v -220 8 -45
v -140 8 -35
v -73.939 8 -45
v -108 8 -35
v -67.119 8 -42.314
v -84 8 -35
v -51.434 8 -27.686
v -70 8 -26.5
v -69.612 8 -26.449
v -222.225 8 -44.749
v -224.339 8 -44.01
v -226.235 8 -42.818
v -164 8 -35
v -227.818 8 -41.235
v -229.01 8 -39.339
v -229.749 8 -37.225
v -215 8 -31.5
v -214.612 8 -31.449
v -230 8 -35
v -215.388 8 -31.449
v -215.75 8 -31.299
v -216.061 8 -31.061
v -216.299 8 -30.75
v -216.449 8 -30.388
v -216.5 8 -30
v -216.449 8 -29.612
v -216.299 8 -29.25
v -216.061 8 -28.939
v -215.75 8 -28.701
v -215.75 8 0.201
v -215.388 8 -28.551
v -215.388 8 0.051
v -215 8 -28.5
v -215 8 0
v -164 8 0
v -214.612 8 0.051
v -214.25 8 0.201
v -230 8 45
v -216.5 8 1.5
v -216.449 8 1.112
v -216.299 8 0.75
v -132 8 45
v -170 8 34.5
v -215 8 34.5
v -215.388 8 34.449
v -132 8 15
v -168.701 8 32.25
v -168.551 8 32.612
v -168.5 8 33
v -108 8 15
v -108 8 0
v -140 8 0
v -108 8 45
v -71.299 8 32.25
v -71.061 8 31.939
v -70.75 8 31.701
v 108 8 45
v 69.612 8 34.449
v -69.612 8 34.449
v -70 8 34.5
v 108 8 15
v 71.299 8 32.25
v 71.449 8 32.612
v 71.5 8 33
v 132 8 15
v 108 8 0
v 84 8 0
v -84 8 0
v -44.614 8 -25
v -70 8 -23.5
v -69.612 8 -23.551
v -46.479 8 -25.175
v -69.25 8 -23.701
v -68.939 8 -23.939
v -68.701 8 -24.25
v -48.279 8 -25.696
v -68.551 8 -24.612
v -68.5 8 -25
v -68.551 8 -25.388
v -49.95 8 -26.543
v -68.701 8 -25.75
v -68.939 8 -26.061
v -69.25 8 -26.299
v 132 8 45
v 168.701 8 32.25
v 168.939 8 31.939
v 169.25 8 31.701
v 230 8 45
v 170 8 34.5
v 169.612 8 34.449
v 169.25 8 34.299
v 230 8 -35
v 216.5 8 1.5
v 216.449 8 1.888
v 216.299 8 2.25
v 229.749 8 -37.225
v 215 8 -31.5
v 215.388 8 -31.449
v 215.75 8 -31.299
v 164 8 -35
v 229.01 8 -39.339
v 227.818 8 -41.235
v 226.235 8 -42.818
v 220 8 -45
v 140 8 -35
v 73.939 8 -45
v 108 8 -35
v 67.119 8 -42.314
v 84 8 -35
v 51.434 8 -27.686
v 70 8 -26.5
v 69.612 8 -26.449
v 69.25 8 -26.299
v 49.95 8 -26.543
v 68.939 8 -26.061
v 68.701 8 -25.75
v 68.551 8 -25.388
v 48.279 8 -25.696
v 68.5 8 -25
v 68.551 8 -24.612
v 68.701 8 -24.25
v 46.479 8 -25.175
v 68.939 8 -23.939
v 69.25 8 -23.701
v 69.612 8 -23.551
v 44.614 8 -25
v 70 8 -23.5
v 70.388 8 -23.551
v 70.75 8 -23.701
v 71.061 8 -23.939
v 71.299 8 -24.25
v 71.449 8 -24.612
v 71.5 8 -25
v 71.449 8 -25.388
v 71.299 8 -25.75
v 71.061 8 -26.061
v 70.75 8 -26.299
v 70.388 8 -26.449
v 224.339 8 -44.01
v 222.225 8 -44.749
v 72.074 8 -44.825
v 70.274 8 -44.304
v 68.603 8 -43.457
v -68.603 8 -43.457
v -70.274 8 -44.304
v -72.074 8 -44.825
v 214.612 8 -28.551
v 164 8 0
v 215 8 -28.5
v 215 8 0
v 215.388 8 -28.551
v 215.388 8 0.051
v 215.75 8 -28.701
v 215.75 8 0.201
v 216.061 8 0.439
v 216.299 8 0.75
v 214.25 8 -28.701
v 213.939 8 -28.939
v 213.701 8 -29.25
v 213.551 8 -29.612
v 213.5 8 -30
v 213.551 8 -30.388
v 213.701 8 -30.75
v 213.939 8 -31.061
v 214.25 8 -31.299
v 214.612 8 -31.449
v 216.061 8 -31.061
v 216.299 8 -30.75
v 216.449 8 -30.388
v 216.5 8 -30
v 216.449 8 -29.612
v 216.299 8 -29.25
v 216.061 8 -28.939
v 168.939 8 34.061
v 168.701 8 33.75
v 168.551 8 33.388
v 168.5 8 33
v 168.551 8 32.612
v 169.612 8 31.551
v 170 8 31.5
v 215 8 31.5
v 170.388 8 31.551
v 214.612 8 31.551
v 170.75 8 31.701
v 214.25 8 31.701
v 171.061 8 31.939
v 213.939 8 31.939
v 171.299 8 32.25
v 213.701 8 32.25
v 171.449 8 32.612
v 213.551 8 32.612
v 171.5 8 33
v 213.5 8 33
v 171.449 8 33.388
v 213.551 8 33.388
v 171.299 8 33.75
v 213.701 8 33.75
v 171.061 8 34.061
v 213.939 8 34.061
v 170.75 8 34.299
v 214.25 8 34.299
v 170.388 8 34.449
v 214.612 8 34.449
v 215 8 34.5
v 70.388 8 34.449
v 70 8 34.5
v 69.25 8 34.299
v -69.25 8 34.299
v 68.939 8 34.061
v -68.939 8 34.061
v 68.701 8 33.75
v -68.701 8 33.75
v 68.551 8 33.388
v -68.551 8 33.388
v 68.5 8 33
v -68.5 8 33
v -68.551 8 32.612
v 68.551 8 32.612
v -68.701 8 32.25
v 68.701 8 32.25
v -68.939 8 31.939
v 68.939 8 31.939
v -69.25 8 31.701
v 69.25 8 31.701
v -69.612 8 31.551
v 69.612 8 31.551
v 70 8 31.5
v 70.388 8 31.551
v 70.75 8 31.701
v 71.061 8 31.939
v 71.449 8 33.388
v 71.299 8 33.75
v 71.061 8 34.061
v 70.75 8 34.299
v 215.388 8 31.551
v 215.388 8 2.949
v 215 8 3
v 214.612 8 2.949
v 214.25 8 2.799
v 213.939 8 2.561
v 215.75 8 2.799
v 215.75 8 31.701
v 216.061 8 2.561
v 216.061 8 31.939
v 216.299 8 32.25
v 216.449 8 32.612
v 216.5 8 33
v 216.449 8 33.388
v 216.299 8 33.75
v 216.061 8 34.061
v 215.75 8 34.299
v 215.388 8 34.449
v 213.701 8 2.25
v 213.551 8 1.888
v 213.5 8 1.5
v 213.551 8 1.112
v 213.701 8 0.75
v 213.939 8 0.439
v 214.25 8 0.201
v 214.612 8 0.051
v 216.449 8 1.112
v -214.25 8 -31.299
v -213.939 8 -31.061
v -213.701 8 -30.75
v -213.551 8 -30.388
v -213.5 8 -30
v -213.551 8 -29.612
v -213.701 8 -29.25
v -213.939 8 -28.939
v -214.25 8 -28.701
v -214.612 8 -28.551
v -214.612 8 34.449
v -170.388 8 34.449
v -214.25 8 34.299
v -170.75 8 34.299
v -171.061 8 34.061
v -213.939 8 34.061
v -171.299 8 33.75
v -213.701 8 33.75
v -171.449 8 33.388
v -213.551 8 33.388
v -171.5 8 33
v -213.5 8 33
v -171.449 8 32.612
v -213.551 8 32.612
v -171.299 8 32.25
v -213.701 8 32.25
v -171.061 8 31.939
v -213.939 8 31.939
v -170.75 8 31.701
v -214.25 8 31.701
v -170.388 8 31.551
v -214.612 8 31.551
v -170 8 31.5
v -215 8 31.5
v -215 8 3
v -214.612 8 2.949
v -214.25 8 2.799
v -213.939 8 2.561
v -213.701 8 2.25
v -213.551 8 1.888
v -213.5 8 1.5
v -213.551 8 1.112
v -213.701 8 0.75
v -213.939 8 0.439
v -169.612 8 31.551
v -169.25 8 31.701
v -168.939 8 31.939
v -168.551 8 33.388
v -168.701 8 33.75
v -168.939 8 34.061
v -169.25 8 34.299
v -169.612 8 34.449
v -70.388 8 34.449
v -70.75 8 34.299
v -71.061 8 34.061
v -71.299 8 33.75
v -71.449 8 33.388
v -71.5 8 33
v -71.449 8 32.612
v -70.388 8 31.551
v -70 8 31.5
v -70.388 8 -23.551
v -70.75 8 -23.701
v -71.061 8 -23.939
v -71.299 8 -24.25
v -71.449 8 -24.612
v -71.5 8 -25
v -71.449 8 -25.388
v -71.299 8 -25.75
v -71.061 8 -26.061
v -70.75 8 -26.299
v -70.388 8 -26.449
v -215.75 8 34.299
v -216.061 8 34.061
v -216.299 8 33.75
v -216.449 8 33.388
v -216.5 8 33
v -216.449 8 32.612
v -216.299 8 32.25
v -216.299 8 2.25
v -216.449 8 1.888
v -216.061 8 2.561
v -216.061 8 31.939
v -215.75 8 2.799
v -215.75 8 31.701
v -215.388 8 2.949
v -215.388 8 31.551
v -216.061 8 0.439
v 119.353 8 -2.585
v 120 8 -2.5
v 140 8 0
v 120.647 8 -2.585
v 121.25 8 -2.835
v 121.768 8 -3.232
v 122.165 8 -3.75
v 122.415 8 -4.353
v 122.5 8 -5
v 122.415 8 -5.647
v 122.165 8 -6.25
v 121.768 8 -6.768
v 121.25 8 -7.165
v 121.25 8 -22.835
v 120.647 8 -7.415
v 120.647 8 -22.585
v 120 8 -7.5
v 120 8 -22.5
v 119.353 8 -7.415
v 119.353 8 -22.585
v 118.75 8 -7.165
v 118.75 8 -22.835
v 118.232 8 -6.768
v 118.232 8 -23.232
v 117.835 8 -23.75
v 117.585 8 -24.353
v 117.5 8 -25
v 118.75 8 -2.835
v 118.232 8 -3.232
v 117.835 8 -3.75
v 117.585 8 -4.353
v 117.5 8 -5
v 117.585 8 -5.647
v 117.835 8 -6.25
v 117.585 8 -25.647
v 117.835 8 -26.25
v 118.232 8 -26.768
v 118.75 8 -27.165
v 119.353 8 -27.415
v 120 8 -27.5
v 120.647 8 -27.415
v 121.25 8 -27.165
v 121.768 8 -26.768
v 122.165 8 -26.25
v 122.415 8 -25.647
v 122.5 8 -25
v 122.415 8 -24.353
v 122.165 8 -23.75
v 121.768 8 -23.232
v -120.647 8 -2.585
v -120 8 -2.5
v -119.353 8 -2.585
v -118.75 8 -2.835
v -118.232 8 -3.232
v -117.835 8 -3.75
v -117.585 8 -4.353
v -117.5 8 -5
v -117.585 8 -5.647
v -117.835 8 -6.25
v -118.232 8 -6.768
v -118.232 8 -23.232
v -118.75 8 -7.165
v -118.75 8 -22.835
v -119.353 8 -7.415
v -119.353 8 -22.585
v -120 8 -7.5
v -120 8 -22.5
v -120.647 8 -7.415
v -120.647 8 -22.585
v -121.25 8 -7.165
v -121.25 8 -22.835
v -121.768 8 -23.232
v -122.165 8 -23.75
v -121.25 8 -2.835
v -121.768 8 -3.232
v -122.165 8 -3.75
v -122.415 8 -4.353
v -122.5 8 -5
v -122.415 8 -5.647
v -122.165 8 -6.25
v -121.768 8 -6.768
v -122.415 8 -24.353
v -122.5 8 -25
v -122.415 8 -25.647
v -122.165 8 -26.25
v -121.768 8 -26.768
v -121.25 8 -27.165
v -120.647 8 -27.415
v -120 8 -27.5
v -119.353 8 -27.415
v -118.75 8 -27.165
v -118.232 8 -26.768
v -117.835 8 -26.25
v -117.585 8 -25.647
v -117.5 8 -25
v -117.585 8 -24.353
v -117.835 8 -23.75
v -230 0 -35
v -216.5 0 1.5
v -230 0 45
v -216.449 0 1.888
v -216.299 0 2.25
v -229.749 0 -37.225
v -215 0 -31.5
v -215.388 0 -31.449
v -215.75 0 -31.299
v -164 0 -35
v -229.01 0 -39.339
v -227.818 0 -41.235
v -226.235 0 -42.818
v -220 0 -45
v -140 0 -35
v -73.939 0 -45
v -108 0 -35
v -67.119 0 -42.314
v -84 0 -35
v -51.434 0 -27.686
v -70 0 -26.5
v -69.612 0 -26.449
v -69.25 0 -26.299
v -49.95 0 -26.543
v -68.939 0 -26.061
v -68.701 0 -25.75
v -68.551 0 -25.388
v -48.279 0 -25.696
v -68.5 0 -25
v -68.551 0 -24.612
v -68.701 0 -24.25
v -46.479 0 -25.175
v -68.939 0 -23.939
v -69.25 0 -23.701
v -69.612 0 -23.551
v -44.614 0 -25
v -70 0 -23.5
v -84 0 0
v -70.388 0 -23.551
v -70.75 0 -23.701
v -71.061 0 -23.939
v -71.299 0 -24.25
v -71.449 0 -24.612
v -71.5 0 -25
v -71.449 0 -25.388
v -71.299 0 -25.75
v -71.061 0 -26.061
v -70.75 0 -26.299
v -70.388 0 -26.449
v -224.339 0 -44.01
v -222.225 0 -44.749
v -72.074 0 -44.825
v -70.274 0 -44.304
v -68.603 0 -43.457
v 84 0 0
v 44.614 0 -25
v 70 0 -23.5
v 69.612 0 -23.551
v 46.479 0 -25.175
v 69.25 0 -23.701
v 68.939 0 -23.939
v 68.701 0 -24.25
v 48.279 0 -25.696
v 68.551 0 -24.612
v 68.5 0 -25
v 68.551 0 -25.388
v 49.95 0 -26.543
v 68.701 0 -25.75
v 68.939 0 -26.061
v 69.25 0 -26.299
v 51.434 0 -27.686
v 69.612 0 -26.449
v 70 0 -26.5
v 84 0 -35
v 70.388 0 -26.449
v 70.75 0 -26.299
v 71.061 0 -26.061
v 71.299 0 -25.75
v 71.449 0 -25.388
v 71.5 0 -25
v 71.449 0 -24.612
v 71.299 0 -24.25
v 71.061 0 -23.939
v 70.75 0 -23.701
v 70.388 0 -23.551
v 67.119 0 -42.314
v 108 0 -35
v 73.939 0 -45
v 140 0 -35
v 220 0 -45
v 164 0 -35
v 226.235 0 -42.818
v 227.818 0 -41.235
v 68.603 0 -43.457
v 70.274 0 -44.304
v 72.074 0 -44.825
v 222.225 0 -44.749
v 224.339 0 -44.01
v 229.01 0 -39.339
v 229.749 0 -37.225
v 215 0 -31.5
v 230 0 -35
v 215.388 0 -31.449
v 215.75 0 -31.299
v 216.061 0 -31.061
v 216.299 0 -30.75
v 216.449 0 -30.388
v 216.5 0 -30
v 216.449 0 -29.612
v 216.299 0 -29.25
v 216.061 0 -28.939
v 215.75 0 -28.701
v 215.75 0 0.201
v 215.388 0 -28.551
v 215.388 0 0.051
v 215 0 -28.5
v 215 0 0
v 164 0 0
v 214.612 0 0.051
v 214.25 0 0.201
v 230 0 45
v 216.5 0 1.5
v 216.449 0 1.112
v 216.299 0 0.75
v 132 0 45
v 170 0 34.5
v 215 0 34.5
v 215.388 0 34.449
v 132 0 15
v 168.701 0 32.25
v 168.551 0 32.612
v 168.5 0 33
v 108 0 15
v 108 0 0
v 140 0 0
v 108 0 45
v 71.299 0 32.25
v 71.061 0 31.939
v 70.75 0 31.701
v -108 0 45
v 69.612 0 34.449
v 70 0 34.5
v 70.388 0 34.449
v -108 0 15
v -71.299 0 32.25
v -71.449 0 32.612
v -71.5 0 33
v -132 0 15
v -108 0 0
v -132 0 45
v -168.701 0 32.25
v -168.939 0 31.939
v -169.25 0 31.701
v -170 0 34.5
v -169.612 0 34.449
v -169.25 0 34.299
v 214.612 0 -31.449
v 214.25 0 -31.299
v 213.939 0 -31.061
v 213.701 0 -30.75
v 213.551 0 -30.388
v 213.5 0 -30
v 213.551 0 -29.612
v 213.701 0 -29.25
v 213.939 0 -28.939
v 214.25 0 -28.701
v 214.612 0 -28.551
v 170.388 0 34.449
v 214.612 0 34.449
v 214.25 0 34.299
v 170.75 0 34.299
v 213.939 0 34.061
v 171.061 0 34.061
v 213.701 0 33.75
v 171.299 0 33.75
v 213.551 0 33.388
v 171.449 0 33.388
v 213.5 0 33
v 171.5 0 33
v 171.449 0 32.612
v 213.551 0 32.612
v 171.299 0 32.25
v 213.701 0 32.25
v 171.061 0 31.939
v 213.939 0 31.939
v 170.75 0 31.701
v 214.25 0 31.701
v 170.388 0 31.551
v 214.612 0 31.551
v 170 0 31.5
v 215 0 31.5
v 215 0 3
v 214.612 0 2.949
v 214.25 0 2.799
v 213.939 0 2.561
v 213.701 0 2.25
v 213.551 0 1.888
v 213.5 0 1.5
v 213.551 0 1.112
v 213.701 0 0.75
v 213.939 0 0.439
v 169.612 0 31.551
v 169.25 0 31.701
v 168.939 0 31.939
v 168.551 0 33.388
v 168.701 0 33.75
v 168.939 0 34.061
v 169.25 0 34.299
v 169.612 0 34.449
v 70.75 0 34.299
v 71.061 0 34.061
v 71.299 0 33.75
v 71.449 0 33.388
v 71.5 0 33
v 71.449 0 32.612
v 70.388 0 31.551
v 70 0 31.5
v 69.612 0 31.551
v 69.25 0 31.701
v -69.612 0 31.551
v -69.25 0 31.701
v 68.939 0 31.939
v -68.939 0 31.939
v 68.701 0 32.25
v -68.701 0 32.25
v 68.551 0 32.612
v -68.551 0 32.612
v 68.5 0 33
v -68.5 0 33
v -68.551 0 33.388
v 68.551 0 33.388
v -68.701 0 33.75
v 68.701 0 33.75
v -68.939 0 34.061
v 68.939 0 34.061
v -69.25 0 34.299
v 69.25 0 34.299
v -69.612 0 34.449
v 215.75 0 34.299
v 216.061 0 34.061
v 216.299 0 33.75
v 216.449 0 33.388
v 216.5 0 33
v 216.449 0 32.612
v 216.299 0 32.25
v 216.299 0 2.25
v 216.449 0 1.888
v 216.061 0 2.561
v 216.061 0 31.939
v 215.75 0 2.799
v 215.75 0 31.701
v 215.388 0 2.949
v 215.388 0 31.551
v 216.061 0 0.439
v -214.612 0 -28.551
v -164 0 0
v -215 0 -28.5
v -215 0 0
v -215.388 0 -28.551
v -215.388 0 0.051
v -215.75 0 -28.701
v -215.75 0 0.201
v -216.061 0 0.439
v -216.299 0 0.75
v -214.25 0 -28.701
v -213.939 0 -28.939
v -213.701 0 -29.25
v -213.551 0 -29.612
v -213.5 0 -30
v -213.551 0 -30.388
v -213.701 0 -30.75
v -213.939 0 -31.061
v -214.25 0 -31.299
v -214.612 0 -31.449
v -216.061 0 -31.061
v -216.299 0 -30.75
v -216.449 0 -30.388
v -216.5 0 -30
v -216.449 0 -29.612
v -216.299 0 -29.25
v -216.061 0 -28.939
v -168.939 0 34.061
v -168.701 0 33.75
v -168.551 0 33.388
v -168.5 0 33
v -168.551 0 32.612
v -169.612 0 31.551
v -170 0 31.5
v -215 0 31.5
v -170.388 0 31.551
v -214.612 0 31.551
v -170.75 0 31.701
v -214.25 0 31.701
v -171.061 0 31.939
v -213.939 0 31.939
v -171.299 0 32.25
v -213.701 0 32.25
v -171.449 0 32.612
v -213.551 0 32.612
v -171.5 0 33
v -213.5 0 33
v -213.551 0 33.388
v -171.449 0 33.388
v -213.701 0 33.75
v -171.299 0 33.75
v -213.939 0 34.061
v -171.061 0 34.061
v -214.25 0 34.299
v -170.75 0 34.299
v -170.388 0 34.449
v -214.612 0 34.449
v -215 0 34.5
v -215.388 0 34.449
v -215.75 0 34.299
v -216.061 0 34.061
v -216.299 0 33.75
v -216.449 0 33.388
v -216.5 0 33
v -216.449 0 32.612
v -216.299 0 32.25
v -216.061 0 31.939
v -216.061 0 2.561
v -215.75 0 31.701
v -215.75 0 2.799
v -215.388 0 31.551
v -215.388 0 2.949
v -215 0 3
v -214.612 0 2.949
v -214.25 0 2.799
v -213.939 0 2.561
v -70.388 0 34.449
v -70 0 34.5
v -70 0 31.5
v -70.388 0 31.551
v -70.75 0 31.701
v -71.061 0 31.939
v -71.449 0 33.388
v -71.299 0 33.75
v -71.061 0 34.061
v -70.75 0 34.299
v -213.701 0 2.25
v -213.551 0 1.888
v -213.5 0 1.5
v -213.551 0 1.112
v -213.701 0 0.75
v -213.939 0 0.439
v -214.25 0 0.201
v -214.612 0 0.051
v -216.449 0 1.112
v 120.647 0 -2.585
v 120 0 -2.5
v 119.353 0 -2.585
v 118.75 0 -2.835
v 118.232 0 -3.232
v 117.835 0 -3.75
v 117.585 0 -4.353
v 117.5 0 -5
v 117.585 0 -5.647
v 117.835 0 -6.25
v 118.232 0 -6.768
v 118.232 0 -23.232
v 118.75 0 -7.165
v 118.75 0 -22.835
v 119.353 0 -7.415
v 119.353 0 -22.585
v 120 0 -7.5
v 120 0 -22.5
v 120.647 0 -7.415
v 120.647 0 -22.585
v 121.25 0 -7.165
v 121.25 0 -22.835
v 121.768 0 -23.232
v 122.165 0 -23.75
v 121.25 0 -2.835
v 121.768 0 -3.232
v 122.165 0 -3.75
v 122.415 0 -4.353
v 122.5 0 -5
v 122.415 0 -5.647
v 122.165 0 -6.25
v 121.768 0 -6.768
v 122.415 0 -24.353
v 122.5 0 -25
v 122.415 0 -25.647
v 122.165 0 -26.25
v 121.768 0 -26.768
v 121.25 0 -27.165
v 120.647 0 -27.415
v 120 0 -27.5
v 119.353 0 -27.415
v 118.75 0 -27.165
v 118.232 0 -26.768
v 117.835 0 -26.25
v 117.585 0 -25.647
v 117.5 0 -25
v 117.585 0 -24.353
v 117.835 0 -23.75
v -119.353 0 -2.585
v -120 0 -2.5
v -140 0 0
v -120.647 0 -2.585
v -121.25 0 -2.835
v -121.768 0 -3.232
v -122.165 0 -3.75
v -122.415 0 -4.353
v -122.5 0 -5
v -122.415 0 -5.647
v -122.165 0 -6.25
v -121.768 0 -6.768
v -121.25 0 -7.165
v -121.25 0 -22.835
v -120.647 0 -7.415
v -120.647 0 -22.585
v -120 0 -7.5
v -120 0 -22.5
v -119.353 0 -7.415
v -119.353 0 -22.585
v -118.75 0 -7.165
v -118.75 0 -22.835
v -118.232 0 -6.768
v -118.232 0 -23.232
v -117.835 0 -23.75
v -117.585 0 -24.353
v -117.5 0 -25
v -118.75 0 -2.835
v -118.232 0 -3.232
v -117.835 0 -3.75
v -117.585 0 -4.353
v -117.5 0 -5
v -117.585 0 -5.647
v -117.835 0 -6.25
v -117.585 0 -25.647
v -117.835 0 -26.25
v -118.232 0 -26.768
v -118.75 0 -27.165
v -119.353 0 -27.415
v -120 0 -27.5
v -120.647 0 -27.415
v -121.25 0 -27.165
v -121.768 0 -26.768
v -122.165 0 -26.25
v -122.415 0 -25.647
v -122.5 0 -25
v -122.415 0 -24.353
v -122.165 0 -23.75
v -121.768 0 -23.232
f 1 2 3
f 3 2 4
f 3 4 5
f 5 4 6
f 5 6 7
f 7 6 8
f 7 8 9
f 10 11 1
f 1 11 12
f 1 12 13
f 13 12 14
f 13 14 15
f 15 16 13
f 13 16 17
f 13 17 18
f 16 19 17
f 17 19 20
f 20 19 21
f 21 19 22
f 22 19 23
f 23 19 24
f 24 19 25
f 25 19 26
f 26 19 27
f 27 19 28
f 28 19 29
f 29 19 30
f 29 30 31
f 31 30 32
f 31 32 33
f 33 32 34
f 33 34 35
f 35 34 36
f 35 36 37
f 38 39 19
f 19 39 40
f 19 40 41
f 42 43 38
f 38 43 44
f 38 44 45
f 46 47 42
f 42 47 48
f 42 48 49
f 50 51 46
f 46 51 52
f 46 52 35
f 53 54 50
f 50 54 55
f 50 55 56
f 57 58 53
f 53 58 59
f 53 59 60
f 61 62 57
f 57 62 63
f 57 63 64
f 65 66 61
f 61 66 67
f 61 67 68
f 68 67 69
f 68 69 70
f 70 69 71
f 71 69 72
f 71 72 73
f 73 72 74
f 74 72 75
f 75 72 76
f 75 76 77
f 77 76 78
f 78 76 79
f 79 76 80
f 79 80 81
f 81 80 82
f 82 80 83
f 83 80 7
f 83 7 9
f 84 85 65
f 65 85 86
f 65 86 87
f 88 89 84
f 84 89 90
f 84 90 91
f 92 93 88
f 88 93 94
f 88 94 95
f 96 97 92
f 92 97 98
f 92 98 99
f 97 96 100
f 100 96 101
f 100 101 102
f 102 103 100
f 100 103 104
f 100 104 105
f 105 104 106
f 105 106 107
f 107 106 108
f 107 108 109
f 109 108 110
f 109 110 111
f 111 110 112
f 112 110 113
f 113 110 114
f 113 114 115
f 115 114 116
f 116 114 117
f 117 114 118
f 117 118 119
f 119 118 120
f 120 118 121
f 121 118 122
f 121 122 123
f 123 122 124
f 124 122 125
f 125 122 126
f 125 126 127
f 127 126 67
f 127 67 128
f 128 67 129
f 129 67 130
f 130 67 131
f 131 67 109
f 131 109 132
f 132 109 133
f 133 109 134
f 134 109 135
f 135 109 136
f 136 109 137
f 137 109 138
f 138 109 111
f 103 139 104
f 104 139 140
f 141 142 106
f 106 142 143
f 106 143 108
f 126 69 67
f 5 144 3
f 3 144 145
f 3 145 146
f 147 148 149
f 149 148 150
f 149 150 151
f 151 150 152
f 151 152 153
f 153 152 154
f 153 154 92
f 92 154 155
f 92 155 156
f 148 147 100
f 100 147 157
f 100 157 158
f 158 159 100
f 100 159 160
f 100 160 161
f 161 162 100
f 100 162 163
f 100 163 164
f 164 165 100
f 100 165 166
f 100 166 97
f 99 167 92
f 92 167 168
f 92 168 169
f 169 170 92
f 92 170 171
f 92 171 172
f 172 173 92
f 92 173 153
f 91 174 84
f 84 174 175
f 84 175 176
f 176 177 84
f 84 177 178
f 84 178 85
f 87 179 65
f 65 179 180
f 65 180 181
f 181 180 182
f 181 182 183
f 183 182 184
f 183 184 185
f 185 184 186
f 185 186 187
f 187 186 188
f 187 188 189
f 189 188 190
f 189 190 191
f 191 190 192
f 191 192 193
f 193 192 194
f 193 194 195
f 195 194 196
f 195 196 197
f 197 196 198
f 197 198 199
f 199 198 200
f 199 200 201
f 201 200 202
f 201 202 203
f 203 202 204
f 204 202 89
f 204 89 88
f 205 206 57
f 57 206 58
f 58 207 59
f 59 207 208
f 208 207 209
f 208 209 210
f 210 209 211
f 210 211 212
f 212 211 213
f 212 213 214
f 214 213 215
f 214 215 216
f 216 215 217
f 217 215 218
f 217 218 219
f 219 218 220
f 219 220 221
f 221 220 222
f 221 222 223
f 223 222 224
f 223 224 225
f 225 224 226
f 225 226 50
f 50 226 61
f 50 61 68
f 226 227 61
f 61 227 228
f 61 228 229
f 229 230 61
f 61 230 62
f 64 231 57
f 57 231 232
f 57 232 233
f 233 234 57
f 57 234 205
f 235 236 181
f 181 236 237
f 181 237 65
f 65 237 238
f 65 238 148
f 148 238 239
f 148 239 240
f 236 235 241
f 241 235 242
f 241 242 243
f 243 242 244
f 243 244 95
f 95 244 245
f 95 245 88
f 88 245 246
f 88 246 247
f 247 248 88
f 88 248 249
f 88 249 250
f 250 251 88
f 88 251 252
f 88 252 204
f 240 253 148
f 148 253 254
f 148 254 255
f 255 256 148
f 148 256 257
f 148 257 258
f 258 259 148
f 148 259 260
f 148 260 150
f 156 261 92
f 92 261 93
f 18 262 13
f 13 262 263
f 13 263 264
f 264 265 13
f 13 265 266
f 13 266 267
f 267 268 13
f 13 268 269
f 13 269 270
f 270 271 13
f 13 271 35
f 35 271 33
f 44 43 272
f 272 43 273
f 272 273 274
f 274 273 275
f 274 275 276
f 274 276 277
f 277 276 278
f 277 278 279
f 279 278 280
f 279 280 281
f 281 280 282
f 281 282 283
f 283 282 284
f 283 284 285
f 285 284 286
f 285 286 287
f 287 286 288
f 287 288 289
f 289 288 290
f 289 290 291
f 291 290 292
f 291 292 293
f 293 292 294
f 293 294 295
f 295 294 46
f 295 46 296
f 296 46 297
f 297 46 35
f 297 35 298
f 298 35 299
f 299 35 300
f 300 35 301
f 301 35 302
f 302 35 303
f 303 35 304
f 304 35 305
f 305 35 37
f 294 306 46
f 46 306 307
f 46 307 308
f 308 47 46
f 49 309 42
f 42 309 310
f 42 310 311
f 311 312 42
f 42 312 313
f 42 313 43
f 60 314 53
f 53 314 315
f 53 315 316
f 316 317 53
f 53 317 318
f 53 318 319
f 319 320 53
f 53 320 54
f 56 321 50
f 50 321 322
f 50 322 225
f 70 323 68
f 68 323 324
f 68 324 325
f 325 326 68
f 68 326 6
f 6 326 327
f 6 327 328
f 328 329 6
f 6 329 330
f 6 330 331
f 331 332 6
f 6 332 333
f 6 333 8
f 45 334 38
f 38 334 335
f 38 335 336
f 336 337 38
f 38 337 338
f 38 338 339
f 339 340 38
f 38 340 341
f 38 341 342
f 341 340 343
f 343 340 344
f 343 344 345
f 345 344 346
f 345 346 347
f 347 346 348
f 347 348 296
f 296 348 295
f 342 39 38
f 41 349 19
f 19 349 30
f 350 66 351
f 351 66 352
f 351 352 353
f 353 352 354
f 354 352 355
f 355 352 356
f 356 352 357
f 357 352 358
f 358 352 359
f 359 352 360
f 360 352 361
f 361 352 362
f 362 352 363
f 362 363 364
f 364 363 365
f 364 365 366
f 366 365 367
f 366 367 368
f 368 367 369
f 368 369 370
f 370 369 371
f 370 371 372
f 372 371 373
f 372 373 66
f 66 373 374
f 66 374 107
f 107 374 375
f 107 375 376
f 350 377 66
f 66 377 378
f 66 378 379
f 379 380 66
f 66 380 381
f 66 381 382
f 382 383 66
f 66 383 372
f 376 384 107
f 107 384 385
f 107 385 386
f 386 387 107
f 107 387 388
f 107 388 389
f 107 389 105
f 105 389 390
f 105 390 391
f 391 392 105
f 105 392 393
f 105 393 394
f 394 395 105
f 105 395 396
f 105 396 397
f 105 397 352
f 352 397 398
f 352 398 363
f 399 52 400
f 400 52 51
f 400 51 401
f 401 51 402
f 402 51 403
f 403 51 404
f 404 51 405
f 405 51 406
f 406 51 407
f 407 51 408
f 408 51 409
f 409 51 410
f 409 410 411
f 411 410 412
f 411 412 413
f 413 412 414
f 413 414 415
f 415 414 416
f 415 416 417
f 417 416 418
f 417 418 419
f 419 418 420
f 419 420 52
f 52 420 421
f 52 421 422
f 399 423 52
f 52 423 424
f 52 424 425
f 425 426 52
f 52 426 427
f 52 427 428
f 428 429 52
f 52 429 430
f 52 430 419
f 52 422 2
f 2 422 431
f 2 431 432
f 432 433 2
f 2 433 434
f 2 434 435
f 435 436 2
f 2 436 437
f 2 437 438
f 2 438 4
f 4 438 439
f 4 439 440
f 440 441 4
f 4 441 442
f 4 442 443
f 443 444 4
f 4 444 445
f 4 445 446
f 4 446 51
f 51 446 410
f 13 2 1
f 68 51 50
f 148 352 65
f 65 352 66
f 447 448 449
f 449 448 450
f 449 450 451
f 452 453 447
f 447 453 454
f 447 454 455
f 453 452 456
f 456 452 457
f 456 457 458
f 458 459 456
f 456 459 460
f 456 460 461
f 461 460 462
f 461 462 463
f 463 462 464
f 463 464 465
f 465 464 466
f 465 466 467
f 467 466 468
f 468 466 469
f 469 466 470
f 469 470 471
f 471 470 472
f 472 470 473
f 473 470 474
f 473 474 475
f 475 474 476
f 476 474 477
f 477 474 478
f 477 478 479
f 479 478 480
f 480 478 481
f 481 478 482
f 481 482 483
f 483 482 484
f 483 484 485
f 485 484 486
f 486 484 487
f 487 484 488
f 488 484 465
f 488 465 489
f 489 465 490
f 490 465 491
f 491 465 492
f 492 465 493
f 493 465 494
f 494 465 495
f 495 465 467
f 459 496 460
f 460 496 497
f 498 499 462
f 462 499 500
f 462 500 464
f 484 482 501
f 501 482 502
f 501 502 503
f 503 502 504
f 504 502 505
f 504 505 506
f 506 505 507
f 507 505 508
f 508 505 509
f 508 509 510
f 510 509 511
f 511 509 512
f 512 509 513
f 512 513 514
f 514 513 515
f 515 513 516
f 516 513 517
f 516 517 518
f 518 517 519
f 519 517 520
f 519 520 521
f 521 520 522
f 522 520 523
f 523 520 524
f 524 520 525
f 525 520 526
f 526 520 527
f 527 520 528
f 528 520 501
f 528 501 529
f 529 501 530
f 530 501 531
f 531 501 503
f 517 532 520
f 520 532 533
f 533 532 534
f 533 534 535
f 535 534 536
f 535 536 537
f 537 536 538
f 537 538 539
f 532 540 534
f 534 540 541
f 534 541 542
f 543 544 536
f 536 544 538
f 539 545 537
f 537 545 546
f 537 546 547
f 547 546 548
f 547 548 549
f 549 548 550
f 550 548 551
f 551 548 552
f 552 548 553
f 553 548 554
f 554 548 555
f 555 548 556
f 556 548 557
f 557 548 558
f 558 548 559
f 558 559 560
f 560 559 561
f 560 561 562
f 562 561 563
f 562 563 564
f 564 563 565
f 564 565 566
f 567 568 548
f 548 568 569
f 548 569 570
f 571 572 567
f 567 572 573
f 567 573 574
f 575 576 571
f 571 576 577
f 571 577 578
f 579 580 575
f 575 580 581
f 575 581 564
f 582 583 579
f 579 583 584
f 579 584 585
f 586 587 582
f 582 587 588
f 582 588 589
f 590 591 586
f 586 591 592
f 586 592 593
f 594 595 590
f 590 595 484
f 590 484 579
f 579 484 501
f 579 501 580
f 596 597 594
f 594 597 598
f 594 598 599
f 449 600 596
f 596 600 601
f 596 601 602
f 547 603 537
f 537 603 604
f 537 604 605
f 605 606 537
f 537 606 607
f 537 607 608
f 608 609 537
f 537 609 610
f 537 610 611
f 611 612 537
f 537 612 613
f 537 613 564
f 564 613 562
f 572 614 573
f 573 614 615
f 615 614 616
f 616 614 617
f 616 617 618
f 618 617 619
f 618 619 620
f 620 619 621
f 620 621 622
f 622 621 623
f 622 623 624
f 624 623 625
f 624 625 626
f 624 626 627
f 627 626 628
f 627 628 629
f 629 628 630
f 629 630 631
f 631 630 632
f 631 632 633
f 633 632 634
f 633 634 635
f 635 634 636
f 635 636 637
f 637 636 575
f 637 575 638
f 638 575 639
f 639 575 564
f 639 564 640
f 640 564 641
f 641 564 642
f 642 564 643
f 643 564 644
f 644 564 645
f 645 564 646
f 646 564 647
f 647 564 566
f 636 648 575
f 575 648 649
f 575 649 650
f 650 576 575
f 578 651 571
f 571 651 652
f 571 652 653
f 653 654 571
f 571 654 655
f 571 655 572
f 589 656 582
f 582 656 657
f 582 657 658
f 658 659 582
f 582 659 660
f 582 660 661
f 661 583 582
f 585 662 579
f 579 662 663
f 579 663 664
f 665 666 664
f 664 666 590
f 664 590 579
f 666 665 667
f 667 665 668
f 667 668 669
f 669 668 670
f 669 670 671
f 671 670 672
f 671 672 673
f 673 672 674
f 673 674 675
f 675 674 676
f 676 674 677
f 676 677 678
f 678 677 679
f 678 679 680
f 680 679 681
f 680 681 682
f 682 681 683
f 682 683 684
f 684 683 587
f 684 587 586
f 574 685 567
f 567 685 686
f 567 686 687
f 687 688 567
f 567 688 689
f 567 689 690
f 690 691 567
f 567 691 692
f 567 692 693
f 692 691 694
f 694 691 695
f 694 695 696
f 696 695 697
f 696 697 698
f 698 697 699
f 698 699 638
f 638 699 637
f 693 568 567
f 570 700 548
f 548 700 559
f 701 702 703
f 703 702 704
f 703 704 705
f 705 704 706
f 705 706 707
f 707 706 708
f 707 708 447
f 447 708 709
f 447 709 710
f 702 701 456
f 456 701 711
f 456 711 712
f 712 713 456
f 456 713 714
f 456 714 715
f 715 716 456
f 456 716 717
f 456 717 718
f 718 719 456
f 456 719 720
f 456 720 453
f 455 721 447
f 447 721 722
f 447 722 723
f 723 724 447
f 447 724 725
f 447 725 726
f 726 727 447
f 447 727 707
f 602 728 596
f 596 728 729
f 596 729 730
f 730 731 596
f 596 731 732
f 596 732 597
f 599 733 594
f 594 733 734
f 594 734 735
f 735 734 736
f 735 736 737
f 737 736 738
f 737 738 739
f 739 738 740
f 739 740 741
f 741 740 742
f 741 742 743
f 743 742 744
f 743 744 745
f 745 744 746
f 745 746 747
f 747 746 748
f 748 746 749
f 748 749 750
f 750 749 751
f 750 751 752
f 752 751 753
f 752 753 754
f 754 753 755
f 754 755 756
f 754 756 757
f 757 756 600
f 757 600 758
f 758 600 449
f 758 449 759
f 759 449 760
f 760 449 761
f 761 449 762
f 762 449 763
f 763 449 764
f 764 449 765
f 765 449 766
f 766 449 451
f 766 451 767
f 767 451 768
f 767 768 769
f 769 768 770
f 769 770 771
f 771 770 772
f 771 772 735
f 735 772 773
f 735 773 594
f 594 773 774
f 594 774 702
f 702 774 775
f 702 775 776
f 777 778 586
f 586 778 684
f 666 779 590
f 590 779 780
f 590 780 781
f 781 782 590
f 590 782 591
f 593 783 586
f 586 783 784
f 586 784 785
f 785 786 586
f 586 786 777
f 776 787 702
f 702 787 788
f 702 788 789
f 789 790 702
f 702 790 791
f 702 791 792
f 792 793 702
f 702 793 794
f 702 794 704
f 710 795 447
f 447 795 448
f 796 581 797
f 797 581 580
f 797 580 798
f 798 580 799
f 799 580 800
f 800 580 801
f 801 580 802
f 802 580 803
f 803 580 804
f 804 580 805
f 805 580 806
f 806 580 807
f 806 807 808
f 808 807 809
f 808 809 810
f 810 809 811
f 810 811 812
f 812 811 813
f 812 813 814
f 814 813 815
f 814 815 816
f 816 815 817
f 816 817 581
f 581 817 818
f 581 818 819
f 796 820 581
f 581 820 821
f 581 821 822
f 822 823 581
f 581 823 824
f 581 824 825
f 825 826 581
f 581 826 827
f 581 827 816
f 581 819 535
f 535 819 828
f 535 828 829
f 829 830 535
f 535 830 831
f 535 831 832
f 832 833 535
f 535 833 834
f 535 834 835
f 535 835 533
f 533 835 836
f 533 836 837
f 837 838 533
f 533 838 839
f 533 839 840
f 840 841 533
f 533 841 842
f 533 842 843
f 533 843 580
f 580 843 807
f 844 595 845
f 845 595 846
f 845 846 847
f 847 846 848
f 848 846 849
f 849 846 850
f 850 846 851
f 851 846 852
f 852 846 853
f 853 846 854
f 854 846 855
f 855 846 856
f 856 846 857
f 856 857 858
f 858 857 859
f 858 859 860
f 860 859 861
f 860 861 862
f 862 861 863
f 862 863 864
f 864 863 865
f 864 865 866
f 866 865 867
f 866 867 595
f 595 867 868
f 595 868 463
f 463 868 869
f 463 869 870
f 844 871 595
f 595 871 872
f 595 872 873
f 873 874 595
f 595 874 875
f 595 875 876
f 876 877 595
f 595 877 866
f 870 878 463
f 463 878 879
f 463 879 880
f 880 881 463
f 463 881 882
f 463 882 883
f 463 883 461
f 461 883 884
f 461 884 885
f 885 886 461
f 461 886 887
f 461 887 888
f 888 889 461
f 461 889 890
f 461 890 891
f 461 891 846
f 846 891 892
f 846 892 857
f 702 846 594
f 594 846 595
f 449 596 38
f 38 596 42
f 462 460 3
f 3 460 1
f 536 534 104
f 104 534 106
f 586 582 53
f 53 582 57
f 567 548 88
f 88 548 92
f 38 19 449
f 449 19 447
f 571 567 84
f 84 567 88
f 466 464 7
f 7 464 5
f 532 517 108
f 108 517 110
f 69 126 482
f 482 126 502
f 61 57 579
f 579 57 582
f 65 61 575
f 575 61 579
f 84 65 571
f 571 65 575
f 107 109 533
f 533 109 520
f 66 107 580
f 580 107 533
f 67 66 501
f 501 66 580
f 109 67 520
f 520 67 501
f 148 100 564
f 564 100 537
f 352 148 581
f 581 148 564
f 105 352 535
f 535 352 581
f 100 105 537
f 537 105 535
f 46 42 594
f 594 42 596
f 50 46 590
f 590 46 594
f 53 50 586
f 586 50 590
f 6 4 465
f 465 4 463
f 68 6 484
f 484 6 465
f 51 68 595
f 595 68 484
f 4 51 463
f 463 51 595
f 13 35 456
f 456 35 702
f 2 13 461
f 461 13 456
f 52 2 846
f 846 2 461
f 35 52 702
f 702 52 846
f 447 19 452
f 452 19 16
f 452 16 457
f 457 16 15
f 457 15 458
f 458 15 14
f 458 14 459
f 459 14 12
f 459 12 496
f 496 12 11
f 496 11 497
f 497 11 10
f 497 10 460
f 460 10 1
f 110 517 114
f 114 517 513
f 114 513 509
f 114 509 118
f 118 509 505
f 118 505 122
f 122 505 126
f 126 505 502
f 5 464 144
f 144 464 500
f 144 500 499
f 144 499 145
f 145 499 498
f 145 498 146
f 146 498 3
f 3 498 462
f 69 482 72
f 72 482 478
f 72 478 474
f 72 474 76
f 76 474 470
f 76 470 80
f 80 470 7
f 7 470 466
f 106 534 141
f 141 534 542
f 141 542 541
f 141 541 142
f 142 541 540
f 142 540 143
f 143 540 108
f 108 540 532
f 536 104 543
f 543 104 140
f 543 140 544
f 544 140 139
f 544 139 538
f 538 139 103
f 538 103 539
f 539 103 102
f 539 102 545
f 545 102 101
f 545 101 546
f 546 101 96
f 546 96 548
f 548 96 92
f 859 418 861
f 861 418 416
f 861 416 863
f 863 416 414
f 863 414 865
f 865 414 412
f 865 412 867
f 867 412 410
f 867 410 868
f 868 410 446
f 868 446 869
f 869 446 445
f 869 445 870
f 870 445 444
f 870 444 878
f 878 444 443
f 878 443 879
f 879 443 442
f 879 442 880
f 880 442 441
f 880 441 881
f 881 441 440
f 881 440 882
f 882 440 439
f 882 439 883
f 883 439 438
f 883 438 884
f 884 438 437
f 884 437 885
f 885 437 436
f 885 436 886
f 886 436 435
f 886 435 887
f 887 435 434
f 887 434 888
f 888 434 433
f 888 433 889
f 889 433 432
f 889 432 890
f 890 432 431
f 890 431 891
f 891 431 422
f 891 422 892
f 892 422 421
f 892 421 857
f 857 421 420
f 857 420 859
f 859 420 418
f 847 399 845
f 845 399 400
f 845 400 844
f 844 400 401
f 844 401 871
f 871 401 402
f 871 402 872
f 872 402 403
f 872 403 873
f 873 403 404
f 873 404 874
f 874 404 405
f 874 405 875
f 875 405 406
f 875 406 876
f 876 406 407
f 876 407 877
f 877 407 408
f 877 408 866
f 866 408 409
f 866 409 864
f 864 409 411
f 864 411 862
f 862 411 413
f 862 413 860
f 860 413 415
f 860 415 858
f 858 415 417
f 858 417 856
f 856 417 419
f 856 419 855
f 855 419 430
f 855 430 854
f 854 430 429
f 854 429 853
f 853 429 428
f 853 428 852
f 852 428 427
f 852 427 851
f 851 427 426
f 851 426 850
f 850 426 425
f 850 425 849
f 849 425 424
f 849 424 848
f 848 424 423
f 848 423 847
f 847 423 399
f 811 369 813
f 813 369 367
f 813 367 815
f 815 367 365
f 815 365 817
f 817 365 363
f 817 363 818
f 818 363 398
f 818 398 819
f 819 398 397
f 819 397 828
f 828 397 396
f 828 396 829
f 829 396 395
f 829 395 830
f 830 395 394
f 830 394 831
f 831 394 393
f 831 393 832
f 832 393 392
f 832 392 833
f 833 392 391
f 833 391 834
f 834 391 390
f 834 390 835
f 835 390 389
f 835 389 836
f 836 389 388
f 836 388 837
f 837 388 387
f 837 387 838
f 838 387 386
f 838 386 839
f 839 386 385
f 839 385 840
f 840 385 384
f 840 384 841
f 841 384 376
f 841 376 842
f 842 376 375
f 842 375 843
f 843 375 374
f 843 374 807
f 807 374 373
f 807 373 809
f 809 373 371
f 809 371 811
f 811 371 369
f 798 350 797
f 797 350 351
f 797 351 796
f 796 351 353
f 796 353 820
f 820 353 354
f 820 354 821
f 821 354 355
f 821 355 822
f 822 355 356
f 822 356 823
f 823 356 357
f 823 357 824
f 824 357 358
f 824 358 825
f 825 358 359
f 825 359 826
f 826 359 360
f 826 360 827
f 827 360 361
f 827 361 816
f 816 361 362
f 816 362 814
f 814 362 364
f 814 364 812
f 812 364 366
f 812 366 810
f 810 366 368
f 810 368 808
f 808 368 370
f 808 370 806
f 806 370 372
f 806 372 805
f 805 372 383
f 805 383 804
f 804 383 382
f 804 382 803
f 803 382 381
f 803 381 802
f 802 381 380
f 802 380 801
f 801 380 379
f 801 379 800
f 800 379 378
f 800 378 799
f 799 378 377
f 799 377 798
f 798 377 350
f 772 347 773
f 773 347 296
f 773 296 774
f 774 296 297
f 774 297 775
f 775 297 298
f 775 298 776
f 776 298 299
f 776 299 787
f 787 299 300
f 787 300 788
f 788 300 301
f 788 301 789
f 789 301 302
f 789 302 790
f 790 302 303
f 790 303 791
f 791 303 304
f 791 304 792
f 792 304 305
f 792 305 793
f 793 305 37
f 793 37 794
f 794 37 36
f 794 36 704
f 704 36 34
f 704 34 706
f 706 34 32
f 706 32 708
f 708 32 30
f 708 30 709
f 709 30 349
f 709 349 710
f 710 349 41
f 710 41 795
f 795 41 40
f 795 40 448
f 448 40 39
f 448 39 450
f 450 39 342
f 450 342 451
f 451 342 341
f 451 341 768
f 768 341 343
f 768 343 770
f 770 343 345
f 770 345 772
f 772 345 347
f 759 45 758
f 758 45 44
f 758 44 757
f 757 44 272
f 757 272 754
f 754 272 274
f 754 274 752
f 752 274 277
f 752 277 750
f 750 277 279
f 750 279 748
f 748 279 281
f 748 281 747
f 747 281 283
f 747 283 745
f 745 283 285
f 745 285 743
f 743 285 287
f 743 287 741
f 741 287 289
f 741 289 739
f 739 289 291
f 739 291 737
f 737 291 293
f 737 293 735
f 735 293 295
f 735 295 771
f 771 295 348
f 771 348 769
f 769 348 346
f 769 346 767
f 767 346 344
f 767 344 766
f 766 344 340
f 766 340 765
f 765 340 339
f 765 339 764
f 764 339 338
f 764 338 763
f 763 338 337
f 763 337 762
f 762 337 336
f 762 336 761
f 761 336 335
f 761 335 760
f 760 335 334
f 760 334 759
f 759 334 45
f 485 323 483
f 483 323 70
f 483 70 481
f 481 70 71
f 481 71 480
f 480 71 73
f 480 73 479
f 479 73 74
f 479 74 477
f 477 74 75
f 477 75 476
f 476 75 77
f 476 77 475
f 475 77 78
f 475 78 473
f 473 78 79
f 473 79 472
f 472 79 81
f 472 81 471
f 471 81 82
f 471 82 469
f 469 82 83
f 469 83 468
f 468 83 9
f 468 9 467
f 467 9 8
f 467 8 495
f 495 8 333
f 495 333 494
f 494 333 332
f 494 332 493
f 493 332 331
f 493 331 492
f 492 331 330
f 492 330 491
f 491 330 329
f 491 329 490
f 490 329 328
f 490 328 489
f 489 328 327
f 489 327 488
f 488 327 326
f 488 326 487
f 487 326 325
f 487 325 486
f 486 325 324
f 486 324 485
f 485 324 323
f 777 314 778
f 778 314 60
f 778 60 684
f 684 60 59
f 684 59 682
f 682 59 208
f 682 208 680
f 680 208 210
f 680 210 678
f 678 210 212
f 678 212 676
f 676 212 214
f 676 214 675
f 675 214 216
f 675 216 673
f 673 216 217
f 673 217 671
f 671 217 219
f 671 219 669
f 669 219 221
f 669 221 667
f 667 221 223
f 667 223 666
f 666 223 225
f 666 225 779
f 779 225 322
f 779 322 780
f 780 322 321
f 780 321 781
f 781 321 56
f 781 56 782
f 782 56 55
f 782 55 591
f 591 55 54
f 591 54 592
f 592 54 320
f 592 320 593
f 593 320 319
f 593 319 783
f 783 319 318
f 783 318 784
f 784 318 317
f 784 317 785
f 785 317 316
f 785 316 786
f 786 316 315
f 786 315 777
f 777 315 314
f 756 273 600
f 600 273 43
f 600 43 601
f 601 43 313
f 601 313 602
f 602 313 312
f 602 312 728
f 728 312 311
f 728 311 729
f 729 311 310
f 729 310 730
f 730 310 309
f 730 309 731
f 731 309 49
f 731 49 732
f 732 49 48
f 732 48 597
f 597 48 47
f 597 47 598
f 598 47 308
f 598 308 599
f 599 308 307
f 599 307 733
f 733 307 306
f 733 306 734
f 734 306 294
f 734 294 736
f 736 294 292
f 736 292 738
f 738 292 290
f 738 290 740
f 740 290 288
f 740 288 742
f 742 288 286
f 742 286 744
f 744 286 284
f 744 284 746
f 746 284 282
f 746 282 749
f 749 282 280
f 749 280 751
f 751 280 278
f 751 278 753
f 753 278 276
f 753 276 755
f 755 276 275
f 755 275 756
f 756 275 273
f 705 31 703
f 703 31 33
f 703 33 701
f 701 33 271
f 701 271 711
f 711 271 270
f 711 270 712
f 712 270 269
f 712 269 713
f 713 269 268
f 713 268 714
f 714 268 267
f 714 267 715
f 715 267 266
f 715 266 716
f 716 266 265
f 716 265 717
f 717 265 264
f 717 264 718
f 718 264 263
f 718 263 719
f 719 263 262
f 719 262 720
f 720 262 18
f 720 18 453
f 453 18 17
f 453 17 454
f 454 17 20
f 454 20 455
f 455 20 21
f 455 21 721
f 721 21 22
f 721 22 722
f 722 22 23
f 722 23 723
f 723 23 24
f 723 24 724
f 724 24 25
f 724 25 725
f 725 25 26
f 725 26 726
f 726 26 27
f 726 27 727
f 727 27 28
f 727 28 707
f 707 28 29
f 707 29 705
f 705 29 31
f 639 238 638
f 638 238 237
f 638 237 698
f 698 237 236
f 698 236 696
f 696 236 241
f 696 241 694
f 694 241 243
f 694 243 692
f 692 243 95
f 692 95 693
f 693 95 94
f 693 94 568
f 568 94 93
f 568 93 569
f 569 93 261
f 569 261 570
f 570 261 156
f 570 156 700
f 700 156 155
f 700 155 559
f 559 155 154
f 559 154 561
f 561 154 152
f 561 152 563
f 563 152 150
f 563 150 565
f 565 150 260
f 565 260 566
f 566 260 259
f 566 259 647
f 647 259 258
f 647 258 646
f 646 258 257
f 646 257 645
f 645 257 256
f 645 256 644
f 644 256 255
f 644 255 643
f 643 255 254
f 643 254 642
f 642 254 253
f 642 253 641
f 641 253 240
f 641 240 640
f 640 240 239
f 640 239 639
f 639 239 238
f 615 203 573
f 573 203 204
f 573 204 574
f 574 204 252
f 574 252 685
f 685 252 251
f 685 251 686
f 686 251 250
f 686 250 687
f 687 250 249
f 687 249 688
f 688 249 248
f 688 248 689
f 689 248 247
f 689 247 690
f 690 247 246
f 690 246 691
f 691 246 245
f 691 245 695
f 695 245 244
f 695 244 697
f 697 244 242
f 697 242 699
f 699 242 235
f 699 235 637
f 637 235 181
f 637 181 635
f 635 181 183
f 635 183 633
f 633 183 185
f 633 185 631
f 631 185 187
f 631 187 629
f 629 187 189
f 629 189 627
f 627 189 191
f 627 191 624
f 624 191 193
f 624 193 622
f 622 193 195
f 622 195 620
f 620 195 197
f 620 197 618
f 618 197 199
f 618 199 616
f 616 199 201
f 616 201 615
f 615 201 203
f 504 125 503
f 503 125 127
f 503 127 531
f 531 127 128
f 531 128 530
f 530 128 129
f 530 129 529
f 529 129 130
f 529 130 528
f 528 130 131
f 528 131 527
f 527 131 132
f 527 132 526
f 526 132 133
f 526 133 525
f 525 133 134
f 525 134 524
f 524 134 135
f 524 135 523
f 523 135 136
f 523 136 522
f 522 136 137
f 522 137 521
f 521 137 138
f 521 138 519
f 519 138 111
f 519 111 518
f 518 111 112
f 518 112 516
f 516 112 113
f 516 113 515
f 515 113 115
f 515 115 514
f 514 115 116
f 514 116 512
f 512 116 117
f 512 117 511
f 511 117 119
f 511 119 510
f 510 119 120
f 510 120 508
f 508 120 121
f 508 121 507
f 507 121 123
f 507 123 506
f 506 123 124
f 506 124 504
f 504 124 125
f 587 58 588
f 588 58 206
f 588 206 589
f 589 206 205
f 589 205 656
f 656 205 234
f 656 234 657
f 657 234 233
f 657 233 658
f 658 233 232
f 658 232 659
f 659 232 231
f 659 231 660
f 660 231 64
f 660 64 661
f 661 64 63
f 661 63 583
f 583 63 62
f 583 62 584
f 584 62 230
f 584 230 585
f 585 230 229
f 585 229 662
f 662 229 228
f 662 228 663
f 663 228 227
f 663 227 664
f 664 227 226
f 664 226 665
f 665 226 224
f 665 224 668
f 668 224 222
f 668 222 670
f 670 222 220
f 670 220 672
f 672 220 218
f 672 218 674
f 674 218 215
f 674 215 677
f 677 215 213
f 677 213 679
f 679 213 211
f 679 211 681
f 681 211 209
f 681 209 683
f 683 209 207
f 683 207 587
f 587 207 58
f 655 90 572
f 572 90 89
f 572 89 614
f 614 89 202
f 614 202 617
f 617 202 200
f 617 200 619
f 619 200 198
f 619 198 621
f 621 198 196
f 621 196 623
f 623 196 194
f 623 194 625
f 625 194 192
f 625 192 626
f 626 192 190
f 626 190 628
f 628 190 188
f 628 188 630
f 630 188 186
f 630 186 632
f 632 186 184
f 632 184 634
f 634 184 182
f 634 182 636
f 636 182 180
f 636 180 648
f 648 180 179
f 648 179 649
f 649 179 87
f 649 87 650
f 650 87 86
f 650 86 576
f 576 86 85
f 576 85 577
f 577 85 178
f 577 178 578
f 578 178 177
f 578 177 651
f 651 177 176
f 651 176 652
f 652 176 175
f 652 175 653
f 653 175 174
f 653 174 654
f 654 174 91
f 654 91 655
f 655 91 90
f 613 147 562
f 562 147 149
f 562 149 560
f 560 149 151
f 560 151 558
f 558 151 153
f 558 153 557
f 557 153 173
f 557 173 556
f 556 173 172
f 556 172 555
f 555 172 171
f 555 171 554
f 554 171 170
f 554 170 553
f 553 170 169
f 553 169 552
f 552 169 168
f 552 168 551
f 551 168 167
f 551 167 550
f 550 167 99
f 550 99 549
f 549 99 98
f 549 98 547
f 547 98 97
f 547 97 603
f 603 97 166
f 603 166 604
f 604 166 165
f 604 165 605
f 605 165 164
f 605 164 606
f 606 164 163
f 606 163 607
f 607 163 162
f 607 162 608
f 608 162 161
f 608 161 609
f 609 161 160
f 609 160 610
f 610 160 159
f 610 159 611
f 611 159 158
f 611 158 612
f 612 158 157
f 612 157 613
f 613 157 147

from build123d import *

# Parameters (mm, degrees)
SKETCH_1_W          = 460
SKETCH_1_H          = 90
EXTRUDE_1_DEPTH     = 8
SKETCH_3_W          = 24
SKETCH_3_H          = 30
CUT_EXTRUDE_2_DEPTH = 235.49733474
SKETCH_2_W          = 24
SKETCH_2_H          = 35
CUT_EXTRUDE_3_DEPTH = 235.49733474
FILLET_1_R          = 10
SKETCH_19_R         = 2.5
CUT_EXTRUDE_4_DEPTH = 235.49733474
SKETCH_20_R         = 1.5
CUT_EXTRUDE_5_DEPTH = 235.49733474


with BuildPart() as part:
    # 草图1 → 凸台-拉伸1 (new body)
    with BuildSketch(Plane(origin=(0, 0, 0), x_dir=(1, 0, 0), z_dir=(0, 1, 0))):
        Rectangle(SKETCH_1_W, SKETCH_1_H)
    extrude(amount=EXTRUDE_1_DEPTH)

    # 草图3 → 切除-拉伸2 (cut, through all)
    with BuildSketch(Plane(origin=(0, 8, 0), x_dir=(1, 0, 0), z_dir=(0, 1, 0))):
        with Locations((120, -30)):
            Rectangle(SKETCH_3_W, SKETCH_3_H)
        Polygon((-70, 45), (70, 45), (48.5526258, 25), (-48.5526258, 25), align=None)
    cut_extrude_2 = extrude(amount=-CUT_EXTRUDE_2_DEPTH, mode=Mode.SUBTRACT)

    # 草图2 → 切除-拉伸3 (cut, through all)
    with BuildSketch(Plane(origin=(0, 8, 0), x_dir=(1, 0, 0), z_dir=(0, 1, 0))):
        with Locations((152, 17.5)):
            Rectangle(SKETCH_2_W, SKETCH_2_H)
        with Locations((96, 17.5)):
            Rectangle(SKETCH_2_W, SKETCH_2_H)
    cut_extrude_3 = extrude(amount=-CUT_EXTRUDE_3_DEPTH, mode=Mode.SUBTRACT)

    # 镜向1: 切除-拉伸2, 切除-拉伸3 across plane
    add(cut_extrude_2.mirror(Plane(origin=(0, 0, 0), x_dir=(0, 0, 1), z_dir=(1, 0, 0))), mode=Mode.SUBTRACT)
    add(cut_extrude_3.mirror(Plane(origin=(0, 0, 0), x_dir=(0, 0, 1), z_dir=(1, 0, 0))), mode=Mode.SUBTRACT)

    # 圆角1
    fillet_1_edges = [part.edges().sort_by_distance(p)[0] for p in [
        (-48.5526258, 4, -25),
        (-70, 4, -45),
        (70, 4, -45),
        (48.5526258, 4, -25),
        (-230, 4, -45),
        (230, 4, -45),
    ]]
    fillet(fillet_1_edges, radius=FILLET_1_R)

    # 草图19 → 切除-拉伸4 (cut, through all)
    with BuildSketch(Plane(origin=(0, 8, 0), x_dir=(1, 0, 0), z_dir=(0, 1, 0))):
        with Locations(Location((-120, 5, 0), (0, 0, 270))):
            Circle(SKETCH_19_R)
        with Locations(Location((-120, 25, 0), (0, 0, 270))):
            Circle(SKETCH_19_R)
    cut_extrude_4 = extrude(amount=-CUT_EXTRUDE_4_DEPTH, mode=Mode.SUBTRACT)

    # 镜向2: 切除-拉伸4 across plane
    add(cut_extrude_4.mirror(Plane(origin=(0, 0, 0), x_dir=(0, 0, 1), z_dir=(1, 0, 0))), mode=Mode.SUBTRACT)

    # 草图20 → 切除-拉伸5 (cut, through all)
    with BuildSketch(Plane(origin=(0, 8, 0), x_dir=(1, 0, 0), z_dir=(0, 1, 0))):
        with Locations(Location((-215, 30, 0), (0, 0, 270))):
            Circle(SKETCH_20_R)
        with Locations(Location((-215, -1.5, 0), (0, 0, 270))):
            Circle(SKETCH_20_R)
        with Locations(Location((-215, -33, 0), (0, 0, 270))):
            Circle(SKETCH_20_R)
        with Locations(Location((-70, 25, 0), (0, 0, 270))):
            Circle(SKETCH_20_R)
        with Locations(Location((-70, -33, 0), (0, 0, 270))):
            Circle(SKETCH_20_R)
        with Locations(Location((-170, -33, 0), (0, 0, 270))):
            Circle(SKETCH_20_R)
    cut_extrude_5 = extrude(amount=-CUT_EXTRUDE_5_DEPTH, mode=Mode.SUBTRACT)

    # 镜向3: 切除-拉伸5 across plane
    add(cut_extrude_5.mirror(Plane(origin=(0, 0, 0), x_dir=(0, 0, 1), z_dir=(1, 0, 0))), mode=Mode.SUBTRACT)


solid = part.part
